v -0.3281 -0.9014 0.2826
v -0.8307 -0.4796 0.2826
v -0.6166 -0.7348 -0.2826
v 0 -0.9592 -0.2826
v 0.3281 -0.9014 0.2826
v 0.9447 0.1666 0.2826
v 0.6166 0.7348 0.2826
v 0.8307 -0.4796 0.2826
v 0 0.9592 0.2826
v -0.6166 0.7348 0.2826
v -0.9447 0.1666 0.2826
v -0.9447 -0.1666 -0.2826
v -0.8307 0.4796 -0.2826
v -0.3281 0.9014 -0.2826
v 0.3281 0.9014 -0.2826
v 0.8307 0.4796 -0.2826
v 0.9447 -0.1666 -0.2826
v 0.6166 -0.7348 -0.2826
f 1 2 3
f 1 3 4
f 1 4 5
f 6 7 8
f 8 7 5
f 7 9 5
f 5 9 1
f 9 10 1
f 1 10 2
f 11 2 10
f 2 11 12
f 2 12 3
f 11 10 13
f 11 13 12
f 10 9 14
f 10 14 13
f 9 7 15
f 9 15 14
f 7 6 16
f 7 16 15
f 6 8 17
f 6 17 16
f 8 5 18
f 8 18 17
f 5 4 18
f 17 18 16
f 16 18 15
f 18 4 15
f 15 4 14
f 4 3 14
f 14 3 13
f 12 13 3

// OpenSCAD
polyhedron( points = [[-0.328074183544054, -0.901376411181717, 0.282644467638545], [-0.830712994066342, -0.479612370597259, 0.282644467638545], [-0.944651962190615, 0.16656762839972, 0.282644467638545], [-0.616577778605744, 0.734808782863284, 0.282644467638545], [5.89161868251855e-11, 0.959224741337526, 0.282644467638545], [0.616577778683275, 0.734808782752553, 0.282644467638545], [0.944651962166099, 0.166567628230073, 0.282644467638545], [0.830712993925776, -0.479612370746444, 0.282644467638545], [0.328074183489623, -0.901376411181717, 0.282644467638545], [-1.02077002329219e-11, -0.959224741353626, -0.282644467650196], [-0.616577778661649, -0.734808782758794, -0.282644467650196], [-0.94465196196235, -0.166567628150237, -0.282644467708849], [-0.830712994128851, 0.479612370880939, -0.282644467632826], [-0.328074183351013, 0.901376410882483, -0.282644467666391], [0.328074183665425, 0.901376411292747, -0.282644467599015], [0.830712993733583, 0.479612370445965, -0.282644467639466], [0.944651962374971, -0.166567628442059, -0.282644467577575], [0.616577778423158, -0.734808782673433, -0.282644467622393]], faces = [[0, 1, 10], [0, 10, 9], [0, 9, 8], [0, 8, 7, 6, 5, 4, 3, 2, 1], [1, 2, 11], [1, 11, 10], [2, 3, 12], [2, 12, 11], [3, 4, 13], [3, 13, 12], [4, 5, 14], [4, 14, 13], [5, 6, 15], [5, 15, 14], [6, 7, 16], [6, 16, 15], [7, 8, 17], [7, 17, 16], [8, 9, 17], [9, 10, 11, 12, 13, 14, 15, 16, 17]]);
